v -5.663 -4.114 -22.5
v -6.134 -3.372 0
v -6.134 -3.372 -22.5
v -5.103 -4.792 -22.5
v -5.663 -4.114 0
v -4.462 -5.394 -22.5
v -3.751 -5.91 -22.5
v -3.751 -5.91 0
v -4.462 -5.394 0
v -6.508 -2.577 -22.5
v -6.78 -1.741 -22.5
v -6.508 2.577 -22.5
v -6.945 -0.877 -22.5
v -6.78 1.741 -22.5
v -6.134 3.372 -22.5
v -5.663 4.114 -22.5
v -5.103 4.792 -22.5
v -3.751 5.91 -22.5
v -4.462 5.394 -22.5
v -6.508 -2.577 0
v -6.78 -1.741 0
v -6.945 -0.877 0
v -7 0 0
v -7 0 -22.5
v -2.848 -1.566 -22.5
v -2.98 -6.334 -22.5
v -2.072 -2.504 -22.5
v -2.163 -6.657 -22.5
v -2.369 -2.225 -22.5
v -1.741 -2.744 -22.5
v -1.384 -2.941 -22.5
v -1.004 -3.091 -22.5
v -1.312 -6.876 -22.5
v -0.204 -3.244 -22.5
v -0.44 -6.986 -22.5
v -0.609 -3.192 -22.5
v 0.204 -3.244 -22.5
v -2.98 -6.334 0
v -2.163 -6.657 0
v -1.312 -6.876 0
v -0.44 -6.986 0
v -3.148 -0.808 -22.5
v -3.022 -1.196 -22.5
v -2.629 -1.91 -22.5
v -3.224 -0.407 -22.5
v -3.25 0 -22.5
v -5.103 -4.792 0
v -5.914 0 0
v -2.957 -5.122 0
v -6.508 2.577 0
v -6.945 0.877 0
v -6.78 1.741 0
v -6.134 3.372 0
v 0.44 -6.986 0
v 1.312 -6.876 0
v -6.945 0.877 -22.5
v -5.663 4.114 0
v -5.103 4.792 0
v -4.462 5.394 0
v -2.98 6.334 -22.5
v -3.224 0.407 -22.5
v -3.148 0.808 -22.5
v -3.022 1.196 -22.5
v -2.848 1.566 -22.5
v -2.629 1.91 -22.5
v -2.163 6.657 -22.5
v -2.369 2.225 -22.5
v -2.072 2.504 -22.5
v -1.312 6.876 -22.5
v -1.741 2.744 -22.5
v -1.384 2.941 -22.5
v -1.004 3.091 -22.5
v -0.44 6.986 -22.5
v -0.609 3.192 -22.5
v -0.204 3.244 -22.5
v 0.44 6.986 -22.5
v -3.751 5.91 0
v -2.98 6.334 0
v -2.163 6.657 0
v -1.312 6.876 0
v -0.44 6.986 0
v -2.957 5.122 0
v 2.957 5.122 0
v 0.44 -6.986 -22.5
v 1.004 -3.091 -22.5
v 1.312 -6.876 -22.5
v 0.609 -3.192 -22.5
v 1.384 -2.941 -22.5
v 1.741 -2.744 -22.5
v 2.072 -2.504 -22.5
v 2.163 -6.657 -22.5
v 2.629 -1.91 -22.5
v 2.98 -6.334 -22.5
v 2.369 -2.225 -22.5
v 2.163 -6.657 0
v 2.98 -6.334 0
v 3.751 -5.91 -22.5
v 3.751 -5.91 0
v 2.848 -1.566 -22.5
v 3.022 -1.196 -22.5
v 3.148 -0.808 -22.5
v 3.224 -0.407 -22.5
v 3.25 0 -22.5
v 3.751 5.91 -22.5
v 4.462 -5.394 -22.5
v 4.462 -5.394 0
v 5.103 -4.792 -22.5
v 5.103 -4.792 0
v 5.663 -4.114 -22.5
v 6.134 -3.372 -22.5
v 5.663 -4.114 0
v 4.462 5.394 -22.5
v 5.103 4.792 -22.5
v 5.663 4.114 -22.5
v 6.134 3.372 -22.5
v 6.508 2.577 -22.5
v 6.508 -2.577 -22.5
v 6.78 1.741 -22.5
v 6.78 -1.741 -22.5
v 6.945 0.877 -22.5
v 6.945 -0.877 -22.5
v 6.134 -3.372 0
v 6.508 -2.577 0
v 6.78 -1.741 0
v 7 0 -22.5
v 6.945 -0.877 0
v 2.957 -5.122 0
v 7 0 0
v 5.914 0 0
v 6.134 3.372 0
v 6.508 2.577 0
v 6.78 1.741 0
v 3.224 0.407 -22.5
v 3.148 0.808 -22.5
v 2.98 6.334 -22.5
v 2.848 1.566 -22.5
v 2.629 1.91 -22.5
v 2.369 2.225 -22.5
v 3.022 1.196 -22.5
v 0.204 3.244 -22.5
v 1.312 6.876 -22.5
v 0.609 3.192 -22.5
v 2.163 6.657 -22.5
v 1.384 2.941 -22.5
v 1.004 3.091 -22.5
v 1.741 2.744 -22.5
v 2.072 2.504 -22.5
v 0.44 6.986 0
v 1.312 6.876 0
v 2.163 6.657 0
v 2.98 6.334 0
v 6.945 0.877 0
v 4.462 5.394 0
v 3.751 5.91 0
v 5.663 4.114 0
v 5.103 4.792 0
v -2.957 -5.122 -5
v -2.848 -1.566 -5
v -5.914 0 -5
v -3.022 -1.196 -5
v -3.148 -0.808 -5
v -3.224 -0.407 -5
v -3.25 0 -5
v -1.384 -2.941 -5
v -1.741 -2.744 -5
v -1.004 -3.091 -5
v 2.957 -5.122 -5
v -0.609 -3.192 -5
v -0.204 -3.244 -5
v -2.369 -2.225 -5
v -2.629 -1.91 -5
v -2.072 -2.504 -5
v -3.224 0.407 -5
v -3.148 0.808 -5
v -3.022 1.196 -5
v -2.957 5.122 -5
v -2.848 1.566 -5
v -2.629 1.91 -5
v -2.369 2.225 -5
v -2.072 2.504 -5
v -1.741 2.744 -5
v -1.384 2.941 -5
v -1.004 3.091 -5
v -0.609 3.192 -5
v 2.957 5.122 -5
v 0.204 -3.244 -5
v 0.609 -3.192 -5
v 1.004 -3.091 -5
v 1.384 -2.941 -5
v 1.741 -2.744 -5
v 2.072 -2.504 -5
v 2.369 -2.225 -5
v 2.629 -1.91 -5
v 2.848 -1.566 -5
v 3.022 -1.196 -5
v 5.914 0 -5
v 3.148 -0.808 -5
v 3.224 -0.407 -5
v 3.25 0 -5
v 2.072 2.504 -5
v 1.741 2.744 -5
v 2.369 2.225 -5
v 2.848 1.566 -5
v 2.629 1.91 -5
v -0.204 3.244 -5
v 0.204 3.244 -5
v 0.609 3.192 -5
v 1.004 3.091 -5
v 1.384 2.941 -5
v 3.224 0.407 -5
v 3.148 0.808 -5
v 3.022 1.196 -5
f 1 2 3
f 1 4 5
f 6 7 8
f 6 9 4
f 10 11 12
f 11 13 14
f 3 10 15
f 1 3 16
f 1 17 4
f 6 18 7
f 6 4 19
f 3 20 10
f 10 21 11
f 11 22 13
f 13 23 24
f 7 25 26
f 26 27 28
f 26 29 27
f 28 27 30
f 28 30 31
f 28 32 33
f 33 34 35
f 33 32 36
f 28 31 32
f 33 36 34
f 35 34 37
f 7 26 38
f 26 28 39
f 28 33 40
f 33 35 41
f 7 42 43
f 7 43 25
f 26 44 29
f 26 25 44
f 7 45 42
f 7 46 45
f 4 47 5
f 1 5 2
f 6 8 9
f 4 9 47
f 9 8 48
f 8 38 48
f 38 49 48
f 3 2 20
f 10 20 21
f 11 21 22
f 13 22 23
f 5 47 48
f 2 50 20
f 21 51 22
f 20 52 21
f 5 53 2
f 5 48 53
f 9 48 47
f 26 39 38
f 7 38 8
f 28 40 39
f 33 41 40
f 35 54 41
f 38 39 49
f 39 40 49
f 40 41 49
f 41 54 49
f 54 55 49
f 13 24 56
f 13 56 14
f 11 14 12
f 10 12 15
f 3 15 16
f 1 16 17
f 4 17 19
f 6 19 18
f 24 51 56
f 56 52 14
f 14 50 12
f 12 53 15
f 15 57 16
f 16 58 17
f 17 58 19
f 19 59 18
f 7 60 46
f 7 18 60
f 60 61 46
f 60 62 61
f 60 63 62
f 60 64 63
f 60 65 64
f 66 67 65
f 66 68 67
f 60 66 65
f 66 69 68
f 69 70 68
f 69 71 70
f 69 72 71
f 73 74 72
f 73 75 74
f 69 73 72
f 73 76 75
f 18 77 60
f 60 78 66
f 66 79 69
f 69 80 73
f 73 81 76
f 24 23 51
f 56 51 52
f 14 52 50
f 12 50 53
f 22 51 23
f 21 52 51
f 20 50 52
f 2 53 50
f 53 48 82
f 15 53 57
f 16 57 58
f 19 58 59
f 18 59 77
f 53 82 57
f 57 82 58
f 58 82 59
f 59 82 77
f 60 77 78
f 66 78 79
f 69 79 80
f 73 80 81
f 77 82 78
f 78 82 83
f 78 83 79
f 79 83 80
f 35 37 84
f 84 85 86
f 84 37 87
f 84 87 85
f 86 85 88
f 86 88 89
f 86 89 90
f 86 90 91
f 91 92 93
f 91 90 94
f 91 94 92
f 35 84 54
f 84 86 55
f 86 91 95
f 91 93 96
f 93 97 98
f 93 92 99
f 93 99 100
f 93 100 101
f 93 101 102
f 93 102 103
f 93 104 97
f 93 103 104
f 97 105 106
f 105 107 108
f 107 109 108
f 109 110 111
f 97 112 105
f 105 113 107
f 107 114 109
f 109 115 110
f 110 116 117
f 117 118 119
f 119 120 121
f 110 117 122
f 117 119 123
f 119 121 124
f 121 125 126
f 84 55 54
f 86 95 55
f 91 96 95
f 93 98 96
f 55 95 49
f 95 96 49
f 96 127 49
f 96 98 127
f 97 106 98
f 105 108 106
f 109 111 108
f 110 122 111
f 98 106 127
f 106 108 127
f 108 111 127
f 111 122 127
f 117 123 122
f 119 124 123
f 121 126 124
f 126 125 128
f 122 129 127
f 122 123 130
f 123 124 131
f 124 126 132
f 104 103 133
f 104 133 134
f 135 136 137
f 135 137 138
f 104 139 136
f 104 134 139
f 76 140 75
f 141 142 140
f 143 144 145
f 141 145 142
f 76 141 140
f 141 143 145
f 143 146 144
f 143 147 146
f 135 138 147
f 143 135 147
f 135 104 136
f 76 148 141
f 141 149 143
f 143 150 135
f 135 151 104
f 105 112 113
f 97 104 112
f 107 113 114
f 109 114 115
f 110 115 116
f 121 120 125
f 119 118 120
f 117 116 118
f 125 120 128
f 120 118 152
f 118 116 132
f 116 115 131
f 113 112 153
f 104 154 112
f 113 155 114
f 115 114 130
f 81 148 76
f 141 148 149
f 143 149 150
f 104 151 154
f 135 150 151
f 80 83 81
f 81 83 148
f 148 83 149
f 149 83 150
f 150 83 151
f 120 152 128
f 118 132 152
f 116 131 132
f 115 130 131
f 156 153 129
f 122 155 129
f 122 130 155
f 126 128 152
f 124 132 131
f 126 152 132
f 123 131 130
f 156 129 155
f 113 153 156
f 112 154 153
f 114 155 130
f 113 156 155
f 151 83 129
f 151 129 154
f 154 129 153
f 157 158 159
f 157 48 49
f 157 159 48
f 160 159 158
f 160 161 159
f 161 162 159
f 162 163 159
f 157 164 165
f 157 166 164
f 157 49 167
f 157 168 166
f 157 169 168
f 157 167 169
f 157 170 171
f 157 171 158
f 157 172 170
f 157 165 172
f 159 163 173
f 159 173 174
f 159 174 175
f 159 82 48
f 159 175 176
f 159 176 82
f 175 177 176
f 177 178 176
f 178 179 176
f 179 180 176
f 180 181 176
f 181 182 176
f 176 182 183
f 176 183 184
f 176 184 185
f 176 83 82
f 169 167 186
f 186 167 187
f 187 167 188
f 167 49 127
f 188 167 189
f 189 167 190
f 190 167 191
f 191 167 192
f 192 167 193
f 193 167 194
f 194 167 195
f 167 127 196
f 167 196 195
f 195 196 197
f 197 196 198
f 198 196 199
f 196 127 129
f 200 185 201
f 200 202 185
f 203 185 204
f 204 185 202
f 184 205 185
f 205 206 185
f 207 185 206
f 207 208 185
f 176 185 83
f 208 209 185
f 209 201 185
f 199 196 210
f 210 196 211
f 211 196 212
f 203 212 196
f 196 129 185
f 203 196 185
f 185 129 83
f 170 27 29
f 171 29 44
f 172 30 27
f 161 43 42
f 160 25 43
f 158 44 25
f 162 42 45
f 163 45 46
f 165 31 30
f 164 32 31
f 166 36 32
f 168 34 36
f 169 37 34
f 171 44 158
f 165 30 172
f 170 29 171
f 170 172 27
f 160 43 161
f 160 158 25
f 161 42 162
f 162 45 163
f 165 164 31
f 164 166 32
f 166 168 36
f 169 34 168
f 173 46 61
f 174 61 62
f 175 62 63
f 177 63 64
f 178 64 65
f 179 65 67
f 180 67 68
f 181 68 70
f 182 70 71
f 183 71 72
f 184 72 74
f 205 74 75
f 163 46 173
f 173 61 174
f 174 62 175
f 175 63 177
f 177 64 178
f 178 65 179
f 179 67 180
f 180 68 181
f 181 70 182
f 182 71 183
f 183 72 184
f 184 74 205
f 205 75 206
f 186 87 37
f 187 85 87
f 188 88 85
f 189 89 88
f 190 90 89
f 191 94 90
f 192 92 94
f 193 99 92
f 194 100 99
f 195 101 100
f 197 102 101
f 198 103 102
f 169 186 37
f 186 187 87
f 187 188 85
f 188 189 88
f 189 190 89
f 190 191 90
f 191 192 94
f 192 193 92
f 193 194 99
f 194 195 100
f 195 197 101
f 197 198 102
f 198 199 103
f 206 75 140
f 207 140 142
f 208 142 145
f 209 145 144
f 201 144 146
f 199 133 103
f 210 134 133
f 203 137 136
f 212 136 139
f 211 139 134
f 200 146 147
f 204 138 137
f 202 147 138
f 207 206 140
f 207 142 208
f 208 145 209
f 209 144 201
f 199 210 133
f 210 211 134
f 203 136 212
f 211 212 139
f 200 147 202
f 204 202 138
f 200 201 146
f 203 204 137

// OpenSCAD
$fn = 50;


difference() {
	union() {
		translate(v = [0, 0, -22.5000000000]) {
			cylinder(h = 22.5000000000, r = 7.0000000000);
		}
		#translate(v = [0, 0, -24.0000000000]) {
			cylinder(h = 24, r = 2.8750000000);
		}
	}
	union() {
		translate(v = [0, 0, 0]) {
			rotate(a = [0, 0, 0]) {
				difference() {
					union() {
						translate(v = [0, 0, -5]) {
							linear_extrude(height = 5) {
								polygon(points = [[5.9142500000, 0.0000000000], [2.9571250000, 5.1218907443], [-2.9571250000, 5.1218907443], [-5.9142500000, 0.0000000000], [-2.9571250000, -5.1218907443], [2.9571250000, -5.1218907443]]);
							}
						}
					}
					union();
				}
			}
		}
		#translate(v = [0, 0, -100.0000000000]) {
			cylinder(h = 200, r = 3.2500000000);
		}
	}
}
